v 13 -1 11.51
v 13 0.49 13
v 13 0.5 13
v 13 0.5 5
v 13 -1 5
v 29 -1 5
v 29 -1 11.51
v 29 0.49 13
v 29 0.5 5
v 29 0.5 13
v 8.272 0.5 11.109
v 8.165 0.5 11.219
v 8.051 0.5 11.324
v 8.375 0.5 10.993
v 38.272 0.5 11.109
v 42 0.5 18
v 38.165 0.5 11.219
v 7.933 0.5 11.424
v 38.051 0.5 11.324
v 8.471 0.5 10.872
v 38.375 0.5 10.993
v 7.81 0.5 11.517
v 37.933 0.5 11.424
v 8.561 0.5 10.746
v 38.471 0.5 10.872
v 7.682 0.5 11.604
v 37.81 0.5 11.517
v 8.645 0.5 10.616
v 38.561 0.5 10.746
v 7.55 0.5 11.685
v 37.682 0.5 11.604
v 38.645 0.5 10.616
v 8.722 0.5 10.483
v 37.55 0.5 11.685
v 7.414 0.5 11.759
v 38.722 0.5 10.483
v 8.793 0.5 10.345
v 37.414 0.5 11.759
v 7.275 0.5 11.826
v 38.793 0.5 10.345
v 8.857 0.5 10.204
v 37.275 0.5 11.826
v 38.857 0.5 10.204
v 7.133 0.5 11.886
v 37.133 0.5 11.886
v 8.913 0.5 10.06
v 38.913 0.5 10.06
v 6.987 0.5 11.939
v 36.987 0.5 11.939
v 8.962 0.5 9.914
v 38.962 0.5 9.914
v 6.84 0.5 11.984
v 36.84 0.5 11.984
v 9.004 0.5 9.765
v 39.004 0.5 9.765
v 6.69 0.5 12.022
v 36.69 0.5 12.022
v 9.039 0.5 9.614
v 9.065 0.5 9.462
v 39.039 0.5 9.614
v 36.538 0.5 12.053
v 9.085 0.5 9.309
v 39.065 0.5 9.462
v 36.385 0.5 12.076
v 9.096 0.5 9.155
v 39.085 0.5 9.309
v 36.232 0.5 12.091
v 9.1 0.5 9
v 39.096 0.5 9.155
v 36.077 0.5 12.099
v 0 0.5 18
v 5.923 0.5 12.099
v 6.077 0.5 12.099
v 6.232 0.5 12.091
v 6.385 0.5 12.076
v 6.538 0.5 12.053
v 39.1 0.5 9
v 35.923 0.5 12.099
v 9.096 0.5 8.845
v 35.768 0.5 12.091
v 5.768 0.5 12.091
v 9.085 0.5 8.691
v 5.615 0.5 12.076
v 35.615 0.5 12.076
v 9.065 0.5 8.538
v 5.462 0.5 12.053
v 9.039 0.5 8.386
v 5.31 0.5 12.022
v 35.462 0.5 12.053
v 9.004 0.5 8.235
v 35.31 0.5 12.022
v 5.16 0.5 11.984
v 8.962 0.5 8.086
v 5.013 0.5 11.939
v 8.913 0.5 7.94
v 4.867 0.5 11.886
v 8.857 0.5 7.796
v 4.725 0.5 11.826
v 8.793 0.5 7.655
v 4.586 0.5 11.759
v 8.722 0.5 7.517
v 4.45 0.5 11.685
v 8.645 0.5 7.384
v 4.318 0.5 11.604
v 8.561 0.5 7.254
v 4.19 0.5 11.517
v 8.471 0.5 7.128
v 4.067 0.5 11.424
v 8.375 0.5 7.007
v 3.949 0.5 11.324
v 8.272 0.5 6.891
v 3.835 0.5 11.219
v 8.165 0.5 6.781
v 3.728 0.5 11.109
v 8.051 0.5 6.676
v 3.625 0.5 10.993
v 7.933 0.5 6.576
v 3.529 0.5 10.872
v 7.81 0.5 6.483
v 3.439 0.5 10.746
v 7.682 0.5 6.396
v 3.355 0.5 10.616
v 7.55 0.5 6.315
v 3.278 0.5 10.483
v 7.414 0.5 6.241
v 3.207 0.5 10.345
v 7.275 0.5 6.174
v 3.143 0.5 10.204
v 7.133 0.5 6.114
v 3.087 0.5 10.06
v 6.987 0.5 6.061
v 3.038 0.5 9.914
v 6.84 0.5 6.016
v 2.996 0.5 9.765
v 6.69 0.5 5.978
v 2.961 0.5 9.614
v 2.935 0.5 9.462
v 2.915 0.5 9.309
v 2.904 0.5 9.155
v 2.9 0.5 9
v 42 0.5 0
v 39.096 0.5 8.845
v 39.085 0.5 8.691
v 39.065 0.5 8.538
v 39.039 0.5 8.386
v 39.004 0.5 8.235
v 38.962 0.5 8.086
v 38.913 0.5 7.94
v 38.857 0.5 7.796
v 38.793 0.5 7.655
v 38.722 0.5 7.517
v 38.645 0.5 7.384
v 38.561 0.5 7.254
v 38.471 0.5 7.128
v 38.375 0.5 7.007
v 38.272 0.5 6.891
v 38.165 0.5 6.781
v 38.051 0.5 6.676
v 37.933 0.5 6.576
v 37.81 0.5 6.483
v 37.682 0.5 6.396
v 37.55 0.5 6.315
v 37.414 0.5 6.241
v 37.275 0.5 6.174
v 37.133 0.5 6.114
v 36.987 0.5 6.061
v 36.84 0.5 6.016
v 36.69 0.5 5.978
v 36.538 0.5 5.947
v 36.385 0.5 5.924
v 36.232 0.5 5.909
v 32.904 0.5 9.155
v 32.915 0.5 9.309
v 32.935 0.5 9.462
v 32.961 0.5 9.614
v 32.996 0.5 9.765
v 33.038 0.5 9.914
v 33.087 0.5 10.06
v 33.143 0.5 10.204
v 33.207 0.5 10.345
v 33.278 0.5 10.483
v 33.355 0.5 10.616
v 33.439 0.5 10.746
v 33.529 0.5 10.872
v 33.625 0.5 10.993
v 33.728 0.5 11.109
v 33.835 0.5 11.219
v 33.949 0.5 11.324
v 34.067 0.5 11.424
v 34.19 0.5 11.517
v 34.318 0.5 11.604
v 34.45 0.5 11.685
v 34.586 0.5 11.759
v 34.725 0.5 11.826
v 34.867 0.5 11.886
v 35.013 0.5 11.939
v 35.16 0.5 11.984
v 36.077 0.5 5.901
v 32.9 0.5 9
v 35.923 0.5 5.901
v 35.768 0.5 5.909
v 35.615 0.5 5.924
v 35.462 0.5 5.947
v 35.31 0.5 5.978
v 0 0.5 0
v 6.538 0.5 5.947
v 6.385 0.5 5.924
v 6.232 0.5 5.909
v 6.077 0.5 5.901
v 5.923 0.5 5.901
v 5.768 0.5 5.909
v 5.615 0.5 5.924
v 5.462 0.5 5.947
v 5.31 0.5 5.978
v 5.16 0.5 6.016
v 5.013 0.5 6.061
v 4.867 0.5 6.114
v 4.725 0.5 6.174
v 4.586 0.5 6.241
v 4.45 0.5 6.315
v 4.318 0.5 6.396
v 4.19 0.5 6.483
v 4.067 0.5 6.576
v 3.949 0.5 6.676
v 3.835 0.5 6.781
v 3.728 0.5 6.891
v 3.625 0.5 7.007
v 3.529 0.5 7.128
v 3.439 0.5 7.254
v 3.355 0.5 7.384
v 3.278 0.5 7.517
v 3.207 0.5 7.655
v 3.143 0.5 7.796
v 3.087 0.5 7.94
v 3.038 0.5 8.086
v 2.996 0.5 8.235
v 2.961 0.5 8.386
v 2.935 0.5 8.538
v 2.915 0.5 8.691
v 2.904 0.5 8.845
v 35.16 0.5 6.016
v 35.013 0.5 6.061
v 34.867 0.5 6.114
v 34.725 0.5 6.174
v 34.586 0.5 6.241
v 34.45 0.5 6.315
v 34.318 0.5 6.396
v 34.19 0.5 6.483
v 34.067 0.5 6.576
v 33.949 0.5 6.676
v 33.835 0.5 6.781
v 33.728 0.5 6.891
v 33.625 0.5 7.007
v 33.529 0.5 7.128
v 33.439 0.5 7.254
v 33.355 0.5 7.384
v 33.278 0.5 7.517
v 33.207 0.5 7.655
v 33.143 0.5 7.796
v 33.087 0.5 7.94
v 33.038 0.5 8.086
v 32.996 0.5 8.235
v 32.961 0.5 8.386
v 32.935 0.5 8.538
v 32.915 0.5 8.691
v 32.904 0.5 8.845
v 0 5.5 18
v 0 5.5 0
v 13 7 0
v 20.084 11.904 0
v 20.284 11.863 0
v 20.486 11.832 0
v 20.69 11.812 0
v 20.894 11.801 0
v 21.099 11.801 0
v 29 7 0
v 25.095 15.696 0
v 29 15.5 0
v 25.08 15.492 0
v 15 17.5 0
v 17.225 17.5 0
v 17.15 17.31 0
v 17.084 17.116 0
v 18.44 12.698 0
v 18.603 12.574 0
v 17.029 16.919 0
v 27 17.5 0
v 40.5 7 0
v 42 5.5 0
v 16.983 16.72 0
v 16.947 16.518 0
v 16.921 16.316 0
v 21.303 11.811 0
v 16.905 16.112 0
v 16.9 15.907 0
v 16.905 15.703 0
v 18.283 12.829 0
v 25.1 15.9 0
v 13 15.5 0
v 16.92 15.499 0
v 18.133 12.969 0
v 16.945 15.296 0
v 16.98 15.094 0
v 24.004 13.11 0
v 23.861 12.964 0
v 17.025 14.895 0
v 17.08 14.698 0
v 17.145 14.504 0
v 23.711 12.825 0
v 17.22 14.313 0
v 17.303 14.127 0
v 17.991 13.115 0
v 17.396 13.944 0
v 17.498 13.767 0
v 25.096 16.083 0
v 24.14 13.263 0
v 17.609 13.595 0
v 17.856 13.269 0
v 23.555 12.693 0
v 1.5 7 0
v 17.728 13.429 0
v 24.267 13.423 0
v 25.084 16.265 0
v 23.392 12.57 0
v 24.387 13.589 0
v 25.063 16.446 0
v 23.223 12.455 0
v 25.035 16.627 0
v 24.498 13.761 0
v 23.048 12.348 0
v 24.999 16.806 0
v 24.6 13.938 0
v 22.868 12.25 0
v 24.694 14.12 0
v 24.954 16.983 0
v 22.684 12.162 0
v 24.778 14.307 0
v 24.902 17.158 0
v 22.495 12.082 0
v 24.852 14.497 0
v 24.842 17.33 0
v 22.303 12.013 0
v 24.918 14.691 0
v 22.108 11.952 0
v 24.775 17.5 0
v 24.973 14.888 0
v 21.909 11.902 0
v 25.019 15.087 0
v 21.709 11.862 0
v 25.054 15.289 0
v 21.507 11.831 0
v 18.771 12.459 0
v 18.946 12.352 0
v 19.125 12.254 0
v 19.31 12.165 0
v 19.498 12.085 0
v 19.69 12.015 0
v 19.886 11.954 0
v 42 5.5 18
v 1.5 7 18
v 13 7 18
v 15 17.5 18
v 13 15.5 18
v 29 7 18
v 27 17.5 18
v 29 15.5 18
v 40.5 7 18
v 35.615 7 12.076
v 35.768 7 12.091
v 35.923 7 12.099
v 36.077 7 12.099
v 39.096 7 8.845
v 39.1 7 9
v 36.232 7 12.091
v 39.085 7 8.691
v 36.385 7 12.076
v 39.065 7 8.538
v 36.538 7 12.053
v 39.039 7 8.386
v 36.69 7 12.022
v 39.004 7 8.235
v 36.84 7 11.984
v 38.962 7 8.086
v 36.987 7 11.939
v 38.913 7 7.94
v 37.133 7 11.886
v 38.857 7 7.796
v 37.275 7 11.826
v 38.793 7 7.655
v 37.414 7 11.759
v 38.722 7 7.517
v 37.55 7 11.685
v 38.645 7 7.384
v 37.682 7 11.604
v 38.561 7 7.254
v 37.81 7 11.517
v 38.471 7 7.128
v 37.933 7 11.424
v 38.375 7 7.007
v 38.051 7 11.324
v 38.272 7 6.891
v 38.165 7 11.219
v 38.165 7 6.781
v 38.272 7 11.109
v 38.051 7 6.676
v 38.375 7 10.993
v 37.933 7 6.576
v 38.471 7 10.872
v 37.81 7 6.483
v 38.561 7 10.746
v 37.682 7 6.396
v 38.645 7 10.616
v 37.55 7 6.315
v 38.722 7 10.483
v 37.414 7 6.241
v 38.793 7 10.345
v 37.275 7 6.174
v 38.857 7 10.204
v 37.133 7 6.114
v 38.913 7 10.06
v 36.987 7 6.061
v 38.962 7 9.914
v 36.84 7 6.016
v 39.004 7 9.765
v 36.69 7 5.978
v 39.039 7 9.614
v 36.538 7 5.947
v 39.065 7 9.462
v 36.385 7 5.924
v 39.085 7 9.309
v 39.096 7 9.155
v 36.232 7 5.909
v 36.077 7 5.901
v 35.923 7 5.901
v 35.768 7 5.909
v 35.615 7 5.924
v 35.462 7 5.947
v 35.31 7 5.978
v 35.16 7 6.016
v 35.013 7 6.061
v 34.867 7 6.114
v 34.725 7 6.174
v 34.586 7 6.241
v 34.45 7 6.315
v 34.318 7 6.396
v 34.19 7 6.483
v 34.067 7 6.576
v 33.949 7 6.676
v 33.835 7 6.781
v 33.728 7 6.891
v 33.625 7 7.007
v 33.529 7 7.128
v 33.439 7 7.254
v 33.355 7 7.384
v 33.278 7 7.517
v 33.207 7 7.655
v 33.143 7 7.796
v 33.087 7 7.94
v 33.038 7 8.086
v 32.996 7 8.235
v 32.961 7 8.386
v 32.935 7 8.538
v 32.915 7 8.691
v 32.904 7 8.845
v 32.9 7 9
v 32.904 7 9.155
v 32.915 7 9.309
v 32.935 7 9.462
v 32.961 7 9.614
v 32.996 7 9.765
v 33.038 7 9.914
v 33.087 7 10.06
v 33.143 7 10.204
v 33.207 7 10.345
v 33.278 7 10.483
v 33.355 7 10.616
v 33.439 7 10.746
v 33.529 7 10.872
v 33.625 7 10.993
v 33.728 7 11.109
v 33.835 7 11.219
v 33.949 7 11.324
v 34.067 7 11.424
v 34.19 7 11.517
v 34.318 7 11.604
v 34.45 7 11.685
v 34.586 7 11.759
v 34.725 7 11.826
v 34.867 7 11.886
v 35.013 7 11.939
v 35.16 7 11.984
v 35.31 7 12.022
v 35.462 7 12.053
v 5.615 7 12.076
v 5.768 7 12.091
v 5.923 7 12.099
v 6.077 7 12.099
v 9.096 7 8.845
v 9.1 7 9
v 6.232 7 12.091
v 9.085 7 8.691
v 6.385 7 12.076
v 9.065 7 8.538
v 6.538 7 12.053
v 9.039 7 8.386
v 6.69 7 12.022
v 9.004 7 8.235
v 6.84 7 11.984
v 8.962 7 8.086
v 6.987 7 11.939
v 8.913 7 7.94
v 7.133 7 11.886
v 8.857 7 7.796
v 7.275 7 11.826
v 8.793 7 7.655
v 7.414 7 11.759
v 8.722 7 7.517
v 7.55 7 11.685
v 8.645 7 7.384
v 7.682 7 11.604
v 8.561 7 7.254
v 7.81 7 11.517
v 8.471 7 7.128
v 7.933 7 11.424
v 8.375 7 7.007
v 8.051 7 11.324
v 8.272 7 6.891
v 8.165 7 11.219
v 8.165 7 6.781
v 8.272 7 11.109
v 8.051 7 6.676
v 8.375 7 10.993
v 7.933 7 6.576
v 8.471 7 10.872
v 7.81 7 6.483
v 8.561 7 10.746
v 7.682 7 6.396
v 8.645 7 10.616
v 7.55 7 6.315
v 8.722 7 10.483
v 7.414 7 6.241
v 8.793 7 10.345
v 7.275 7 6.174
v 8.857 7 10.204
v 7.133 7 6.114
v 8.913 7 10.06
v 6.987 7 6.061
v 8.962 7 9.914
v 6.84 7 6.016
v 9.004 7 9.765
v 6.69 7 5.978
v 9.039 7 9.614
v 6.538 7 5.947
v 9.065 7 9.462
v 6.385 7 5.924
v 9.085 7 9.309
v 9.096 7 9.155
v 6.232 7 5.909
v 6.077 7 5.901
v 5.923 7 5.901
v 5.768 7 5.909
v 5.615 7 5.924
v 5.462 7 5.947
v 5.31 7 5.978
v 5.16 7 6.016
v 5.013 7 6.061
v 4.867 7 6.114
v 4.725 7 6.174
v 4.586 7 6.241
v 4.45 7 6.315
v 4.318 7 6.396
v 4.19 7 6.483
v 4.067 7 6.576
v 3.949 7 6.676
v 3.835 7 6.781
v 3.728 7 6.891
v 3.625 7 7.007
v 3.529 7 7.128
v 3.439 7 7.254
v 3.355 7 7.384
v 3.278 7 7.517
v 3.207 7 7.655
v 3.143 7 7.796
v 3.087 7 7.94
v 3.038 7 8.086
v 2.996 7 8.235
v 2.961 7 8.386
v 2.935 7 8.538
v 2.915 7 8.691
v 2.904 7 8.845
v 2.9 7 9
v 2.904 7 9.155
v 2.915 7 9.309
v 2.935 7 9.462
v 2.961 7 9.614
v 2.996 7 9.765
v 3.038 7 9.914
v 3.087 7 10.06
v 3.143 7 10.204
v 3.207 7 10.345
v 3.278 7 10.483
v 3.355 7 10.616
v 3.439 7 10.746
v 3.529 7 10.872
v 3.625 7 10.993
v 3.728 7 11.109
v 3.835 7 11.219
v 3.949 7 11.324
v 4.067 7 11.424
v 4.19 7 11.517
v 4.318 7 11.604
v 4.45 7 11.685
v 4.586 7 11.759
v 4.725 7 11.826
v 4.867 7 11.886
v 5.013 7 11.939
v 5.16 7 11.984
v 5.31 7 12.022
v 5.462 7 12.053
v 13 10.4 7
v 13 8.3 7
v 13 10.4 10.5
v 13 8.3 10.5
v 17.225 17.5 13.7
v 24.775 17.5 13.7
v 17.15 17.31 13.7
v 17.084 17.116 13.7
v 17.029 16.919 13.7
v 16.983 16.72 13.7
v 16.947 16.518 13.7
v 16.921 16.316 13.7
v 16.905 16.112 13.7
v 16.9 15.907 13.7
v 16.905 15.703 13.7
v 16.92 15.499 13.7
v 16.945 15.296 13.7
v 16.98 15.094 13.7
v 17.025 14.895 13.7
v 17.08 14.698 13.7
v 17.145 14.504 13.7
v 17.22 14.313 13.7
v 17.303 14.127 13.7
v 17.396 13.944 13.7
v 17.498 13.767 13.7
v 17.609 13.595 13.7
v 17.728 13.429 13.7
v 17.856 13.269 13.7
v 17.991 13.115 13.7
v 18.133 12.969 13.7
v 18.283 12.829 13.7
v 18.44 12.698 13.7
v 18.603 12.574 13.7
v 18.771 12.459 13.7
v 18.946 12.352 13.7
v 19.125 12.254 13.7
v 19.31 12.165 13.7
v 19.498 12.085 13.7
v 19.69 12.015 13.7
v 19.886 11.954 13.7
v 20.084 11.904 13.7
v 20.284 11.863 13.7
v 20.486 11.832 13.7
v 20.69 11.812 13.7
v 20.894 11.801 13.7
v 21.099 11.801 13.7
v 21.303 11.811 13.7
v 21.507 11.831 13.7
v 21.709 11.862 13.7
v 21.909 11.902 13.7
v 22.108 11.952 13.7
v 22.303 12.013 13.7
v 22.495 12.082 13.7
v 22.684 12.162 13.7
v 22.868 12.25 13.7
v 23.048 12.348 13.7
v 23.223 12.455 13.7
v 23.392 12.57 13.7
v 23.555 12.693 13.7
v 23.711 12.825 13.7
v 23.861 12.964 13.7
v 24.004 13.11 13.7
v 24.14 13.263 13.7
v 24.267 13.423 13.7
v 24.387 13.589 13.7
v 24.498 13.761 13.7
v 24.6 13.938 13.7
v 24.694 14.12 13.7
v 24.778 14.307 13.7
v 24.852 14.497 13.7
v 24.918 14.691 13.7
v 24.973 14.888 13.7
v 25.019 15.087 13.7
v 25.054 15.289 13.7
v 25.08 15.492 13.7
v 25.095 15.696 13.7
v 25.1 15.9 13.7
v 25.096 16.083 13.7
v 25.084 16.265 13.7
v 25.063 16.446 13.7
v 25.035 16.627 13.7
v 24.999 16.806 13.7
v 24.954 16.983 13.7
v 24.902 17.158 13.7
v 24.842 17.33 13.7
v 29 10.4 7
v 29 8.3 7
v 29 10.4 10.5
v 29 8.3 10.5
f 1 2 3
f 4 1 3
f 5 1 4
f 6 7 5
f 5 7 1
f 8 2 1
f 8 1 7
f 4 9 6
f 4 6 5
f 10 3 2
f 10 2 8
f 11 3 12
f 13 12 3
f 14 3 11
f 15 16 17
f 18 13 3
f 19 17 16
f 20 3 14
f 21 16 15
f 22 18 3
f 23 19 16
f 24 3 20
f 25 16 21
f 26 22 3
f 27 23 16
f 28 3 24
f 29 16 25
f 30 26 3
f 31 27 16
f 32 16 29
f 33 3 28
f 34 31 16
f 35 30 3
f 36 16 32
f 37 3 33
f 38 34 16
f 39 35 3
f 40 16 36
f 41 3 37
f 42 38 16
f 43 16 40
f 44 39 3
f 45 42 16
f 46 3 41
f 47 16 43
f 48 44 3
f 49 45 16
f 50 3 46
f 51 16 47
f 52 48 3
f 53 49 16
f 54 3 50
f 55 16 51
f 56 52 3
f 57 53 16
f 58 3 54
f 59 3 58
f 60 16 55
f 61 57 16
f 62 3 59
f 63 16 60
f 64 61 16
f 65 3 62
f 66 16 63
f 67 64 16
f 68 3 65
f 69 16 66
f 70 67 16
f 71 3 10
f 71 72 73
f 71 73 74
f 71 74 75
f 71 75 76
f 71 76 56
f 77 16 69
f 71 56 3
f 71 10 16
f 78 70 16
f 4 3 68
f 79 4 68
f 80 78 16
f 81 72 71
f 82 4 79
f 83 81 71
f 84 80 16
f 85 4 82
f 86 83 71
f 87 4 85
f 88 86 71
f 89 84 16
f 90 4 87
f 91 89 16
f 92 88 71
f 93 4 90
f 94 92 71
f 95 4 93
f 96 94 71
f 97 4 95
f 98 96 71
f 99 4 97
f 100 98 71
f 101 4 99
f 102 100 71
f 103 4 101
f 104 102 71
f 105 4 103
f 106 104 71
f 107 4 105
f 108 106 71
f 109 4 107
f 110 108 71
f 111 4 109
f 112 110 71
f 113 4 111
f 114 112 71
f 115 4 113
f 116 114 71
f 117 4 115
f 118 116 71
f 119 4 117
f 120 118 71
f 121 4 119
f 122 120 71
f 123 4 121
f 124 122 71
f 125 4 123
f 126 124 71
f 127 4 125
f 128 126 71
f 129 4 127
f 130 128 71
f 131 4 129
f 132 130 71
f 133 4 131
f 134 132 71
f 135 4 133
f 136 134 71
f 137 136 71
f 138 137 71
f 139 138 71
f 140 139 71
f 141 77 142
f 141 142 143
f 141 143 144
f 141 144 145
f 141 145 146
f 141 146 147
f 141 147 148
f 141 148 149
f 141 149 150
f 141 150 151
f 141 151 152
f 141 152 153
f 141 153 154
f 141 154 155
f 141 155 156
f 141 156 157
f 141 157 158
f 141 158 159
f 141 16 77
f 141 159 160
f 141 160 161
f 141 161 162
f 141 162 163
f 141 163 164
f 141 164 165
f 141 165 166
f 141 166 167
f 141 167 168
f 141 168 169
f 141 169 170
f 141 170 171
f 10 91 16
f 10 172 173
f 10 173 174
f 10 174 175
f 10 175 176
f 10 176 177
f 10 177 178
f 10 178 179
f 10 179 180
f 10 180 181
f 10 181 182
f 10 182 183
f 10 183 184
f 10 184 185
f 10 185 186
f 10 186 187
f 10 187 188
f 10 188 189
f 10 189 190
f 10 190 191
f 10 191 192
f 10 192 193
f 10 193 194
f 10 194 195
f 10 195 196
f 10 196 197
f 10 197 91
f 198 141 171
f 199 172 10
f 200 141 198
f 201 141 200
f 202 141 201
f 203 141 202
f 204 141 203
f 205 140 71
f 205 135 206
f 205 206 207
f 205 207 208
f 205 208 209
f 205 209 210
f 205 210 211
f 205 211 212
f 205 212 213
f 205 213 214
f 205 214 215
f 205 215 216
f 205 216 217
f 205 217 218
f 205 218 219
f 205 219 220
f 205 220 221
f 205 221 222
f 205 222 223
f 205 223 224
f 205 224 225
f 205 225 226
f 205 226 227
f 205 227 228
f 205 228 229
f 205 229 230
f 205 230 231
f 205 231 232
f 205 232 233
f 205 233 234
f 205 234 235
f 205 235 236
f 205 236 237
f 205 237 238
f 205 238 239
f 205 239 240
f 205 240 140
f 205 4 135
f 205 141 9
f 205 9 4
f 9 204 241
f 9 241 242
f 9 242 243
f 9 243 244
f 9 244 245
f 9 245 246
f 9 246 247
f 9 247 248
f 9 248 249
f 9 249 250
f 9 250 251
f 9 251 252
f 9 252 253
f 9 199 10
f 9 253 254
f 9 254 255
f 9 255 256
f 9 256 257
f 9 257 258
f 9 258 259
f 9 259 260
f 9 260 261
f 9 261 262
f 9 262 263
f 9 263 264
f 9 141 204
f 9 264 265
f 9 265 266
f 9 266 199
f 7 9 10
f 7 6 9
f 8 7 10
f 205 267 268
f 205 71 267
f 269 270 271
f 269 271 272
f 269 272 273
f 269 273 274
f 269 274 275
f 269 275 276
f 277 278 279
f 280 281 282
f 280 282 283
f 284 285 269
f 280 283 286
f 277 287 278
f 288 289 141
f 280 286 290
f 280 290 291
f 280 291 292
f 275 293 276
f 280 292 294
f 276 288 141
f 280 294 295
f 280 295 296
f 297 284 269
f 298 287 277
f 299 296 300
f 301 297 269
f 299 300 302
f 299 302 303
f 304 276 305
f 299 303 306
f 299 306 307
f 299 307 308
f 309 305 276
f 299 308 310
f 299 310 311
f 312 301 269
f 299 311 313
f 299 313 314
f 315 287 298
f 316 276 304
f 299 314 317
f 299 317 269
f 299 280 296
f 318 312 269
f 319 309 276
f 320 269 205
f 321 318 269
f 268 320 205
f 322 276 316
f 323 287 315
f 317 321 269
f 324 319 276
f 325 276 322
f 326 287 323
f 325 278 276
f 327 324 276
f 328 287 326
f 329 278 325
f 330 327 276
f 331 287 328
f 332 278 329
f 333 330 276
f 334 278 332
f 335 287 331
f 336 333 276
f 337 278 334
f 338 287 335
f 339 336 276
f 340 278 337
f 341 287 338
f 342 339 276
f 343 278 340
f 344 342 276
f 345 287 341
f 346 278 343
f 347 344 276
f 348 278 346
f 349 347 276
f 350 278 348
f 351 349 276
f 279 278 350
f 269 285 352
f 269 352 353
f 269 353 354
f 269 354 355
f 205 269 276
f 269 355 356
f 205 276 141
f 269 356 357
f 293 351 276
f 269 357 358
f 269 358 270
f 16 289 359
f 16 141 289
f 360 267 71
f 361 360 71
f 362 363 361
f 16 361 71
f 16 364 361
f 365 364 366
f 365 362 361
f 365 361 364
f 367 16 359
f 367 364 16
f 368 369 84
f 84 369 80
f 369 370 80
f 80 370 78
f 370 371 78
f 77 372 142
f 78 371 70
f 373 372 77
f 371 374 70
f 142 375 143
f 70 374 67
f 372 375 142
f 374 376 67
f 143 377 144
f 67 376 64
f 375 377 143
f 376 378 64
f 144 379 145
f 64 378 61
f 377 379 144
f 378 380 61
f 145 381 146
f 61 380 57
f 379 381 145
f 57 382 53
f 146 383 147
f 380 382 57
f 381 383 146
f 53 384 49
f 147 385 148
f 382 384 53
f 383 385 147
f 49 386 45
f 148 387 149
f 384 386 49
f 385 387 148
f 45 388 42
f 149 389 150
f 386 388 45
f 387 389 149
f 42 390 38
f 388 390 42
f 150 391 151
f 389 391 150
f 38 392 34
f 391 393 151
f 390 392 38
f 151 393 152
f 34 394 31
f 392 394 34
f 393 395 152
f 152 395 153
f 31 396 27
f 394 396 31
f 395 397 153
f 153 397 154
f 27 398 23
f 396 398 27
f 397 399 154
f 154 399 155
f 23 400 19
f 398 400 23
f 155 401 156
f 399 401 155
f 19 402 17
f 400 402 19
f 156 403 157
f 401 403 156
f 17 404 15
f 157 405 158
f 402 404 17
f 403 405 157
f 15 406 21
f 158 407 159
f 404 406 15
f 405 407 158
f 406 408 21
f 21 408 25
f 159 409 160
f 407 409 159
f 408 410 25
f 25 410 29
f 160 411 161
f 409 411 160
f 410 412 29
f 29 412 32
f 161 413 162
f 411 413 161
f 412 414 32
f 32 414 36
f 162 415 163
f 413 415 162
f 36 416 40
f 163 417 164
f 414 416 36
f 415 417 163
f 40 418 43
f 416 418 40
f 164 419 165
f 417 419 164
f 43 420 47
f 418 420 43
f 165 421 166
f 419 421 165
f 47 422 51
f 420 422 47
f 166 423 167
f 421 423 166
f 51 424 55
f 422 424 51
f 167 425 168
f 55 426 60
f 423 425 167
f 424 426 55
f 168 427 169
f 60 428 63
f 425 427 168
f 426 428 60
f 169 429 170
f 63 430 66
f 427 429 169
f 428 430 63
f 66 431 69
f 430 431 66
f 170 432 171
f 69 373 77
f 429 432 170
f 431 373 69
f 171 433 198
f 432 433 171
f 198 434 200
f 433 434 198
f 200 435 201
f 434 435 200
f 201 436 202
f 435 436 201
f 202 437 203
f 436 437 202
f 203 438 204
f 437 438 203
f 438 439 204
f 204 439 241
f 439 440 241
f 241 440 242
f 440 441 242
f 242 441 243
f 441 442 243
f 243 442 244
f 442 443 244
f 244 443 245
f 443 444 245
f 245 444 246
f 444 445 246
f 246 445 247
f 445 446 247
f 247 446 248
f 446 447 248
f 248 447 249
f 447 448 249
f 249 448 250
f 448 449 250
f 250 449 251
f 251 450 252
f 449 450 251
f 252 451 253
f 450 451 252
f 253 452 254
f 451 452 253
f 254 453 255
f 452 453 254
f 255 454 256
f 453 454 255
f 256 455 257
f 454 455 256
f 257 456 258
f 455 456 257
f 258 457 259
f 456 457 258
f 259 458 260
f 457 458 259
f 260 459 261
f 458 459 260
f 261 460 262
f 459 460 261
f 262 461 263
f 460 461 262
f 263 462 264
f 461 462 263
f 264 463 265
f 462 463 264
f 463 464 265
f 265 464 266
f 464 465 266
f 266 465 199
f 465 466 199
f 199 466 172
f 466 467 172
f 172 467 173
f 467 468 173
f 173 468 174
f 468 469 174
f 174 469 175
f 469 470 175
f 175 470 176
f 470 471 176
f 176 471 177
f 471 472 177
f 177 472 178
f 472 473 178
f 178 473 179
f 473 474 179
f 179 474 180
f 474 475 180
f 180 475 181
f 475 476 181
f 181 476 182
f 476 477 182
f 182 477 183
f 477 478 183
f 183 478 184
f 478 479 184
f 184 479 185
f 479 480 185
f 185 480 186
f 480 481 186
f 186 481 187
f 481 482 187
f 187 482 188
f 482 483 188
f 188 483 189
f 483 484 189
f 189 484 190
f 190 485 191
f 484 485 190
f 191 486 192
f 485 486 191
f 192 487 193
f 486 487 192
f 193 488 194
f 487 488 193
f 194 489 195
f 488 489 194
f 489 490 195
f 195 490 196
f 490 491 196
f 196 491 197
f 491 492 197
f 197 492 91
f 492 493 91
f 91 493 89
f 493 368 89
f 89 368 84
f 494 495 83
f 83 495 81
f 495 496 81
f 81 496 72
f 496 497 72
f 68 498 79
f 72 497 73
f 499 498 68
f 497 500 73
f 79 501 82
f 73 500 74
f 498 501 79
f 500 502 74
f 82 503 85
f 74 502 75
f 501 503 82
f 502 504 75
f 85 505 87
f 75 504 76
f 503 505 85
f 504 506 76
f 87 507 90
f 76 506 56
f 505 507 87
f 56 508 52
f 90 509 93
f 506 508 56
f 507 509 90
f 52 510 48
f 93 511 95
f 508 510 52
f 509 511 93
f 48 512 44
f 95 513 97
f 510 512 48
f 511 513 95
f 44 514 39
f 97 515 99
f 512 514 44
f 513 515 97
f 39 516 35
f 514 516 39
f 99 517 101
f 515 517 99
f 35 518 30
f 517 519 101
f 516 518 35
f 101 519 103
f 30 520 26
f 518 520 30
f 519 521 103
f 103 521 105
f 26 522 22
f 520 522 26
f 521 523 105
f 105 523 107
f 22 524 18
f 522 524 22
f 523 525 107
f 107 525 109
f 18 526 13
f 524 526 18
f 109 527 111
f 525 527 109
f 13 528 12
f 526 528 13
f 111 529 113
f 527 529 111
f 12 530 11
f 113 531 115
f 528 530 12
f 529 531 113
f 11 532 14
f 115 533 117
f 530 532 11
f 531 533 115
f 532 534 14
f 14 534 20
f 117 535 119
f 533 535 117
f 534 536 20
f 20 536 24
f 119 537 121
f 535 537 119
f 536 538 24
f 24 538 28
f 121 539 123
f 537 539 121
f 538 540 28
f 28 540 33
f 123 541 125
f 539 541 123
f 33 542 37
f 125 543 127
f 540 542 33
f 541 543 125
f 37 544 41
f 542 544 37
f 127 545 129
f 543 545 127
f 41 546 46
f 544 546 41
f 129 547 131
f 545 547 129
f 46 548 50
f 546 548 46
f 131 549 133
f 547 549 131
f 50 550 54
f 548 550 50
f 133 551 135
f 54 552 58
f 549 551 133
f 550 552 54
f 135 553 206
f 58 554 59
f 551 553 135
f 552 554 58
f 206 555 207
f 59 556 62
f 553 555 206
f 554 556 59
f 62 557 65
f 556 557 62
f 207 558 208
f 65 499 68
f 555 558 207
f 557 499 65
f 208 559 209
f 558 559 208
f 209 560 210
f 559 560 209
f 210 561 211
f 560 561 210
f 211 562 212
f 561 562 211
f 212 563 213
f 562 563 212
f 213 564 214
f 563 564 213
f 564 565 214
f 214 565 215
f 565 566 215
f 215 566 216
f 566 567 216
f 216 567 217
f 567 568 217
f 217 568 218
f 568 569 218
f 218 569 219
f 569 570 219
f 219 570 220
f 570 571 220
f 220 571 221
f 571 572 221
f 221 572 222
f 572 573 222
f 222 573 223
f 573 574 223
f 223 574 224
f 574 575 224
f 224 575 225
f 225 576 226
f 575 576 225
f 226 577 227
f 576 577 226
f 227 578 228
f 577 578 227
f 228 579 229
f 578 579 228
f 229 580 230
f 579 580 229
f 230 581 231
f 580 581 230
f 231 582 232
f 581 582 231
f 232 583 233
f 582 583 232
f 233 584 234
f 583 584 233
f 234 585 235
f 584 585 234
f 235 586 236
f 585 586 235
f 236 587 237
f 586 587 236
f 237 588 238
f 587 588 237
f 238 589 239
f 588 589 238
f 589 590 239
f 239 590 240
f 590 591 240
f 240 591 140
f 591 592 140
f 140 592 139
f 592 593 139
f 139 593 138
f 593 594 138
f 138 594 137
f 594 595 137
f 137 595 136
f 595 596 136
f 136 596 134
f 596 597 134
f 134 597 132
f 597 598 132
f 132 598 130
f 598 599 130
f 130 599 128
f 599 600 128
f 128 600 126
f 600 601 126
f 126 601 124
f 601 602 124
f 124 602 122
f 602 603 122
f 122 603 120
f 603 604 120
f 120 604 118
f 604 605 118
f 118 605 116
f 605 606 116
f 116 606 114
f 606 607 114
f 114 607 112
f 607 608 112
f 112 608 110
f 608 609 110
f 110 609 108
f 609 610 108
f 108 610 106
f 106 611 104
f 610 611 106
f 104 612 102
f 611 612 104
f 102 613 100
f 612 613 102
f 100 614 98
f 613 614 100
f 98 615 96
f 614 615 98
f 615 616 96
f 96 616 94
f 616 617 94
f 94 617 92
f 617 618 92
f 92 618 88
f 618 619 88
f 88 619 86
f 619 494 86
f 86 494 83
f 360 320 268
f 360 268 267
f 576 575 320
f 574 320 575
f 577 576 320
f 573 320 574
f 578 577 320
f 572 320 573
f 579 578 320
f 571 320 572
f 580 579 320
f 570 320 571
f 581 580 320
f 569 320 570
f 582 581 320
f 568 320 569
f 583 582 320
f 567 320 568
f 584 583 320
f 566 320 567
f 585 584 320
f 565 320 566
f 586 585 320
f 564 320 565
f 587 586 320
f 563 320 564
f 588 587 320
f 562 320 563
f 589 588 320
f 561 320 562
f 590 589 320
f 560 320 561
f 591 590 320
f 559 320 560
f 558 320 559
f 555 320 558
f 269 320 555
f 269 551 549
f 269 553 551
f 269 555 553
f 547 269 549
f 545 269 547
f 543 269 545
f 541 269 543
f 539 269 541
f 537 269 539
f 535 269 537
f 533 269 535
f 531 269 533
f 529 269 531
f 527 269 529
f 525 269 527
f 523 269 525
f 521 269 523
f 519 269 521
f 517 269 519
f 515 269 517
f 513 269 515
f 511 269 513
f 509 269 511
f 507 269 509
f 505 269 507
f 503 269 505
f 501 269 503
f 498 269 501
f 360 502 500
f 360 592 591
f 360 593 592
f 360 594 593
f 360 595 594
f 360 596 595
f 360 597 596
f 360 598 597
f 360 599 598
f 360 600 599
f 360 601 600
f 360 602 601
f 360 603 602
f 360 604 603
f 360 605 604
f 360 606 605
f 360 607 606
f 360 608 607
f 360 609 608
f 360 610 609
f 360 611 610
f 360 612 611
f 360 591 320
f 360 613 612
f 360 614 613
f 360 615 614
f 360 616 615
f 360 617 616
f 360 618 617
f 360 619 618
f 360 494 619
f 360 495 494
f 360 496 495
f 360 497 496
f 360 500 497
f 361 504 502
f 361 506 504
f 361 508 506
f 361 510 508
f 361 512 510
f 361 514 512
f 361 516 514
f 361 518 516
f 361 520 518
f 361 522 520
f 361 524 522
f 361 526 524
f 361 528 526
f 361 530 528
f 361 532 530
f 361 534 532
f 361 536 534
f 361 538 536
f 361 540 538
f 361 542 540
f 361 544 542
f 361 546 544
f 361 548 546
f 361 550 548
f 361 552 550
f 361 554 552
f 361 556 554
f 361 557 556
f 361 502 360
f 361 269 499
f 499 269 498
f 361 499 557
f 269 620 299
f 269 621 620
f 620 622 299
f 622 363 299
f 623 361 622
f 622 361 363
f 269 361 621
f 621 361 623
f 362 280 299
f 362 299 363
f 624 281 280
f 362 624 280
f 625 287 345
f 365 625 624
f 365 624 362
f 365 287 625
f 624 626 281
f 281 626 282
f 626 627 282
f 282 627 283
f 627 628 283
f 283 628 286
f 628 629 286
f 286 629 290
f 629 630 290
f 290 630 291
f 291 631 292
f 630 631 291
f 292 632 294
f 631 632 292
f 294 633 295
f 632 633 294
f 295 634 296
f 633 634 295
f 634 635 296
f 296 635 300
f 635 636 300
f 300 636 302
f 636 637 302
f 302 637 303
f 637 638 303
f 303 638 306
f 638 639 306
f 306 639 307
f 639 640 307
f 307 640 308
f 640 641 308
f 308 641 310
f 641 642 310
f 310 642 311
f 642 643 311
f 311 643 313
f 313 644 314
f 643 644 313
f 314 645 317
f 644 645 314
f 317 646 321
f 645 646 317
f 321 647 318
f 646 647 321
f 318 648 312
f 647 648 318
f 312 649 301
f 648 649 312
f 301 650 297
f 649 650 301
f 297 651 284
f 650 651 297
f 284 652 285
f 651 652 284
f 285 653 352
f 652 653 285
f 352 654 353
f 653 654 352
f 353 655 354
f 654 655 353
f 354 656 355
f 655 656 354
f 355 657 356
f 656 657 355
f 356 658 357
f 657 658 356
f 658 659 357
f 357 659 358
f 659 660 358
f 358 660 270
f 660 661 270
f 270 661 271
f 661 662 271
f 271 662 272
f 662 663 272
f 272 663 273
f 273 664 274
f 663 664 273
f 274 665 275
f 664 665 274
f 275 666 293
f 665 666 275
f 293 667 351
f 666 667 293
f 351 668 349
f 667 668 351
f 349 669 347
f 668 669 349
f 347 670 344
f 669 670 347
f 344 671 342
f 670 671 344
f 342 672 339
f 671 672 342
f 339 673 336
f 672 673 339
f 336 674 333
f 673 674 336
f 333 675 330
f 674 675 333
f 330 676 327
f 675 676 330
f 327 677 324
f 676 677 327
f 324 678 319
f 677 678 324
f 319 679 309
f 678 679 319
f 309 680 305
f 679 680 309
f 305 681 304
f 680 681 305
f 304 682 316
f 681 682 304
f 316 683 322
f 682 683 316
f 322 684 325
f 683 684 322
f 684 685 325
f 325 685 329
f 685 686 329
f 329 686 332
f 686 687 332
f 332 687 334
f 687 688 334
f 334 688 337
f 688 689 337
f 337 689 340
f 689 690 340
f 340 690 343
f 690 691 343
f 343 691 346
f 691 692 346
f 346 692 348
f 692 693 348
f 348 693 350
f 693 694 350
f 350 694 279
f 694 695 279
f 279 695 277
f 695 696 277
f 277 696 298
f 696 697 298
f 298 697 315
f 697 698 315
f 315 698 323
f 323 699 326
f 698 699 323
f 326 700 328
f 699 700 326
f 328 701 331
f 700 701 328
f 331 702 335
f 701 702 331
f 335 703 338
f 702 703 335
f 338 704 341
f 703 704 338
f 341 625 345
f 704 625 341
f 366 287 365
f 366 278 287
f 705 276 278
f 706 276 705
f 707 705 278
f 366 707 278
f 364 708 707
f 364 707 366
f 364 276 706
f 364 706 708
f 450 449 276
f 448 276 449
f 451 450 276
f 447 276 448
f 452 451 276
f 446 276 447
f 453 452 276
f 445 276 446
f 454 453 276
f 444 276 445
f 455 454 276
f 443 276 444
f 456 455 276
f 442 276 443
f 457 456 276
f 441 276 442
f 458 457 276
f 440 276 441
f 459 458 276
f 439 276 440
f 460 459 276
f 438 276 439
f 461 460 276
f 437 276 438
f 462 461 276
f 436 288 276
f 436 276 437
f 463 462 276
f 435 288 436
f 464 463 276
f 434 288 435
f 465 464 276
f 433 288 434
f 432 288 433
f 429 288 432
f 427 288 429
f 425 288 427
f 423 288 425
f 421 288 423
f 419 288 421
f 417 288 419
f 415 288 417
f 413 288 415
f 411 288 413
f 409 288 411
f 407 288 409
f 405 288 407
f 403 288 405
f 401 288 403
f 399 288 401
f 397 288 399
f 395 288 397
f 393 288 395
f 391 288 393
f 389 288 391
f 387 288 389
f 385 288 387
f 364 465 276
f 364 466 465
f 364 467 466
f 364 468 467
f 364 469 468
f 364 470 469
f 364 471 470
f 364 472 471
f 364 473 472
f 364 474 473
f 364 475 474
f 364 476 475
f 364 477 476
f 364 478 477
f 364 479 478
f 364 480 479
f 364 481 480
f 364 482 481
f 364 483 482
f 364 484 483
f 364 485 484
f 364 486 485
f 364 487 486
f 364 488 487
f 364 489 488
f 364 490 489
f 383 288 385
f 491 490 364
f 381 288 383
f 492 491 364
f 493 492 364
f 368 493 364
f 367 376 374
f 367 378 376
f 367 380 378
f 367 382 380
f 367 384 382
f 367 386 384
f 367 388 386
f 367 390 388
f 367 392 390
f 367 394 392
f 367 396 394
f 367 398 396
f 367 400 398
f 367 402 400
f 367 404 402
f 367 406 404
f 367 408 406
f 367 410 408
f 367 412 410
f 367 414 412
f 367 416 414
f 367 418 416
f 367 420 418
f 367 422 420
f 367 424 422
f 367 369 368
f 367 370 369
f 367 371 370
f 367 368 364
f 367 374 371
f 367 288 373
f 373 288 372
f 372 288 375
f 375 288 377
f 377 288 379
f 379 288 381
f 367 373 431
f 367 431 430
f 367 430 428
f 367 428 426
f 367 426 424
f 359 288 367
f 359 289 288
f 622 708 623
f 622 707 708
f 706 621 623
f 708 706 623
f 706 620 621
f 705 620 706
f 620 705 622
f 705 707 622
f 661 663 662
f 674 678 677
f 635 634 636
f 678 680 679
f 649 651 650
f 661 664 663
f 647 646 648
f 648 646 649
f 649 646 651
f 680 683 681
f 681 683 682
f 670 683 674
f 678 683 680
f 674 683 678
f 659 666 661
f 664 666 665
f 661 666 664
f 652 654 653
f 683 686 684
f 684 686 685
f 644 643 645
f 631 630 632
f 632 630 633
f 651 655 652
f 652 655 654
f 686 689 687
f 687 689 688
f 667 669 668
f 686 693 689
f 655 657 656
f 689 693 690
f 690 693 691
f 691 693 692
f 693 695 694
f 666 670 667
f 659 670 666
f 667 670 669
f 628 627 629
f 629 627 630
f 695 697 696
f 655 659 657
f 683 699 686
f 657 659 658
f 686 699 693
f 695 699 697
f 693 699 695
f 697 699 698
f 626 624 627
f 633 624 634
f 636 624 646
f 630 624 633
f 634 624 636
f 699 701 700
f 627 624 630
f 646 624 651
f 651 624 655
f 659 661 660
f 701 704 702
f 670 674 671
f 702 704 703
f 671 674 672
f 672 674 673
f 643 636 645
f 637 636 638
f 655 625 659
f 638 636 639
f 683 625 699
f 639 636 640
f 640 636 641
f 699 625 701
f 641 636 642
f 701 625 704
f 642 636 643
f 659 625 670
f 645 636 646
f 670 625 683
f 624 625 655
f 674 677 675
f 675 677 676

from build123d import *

# Parameters (mm, degrees)
CUBE003_W                   = 50
CUBE003_H                   = 2
CUBE003_DEPTH               = 5
CYLINDER_R                  = 4.1
CYLINDER_DEPTH              = 13.8
CUBE004_W                   = 10
CUBE004_H                   = 10
CUBE004_DEPTH               = 20
CUBE004_PLACEMENT_ANGLE     = 45
CUBE005_W                   = 10
CUBE005_H                   = 10
CUBE005_DEPTH               = 20
CUBE005_PLACEMENT_ANGLE     = 45
CUBE006_W                   = 10
CUBE006_H                   = 10
CUBE006_DEPTH               = 20
CUBE006_PLACEMENT_ANGLE     = 45
CUBE007_W                   = 10
CUBE007_H                   = 10
CUBE007_DEPTH               = 20
CUBE007_PLACEMENT_ANGLE     = 45
CYLINDER001_R               = 3.1
CYLINDER001_DEPTH           = 10
CYLINDER002_R               = 3.1
CYLINDER002_DEPTH           = 10
CUBE008_W                   = 30
CUBE008_H                   = 2.1
CUBE008_DEPTH               = 3.5
CUBE002_W                   = 50
CUBE002_H                   = 2
CUBE002_DEPTH               = 10
CUBE001_W                   = 16
CUBE001_H                   = 17.5
CUBE001_DEPTH               = 18
CUBE_W                      = 42
CUBE_H                      = 7
CUBE_DEPTH                  = 18
DIFFERENCE_PLACEMENT_ANGLE  = 180
BASEFEATURE_PLACEMENT_ANGLE = 180
SKETCH_W                    = 13
SKETCH_H                    = 8
POCKET_DEPTH                = 0.5
SKETCH001_W                 = 16
SKETCH001_H                 = 8
PAD_DEPTH                   = 1
CHAMFER_SIZE                = 1.49


with BuildPart() as cube003:
    # cube003 → cube003 (new body)
    with BuildSketch(Plane(origin=(42.1, 0.5, 0), x_dir=(-1, 0, 0), z_dir=(0, 0, 1))):
        with Locations((25, 1)):
            Rectangle(CUBE003_W, CUBE003_H)
    extrude(amount=CUBE003_DEPTH)


with BuildPart() as cylinder:
    # cylinder → cylinder (new body)
    with BuildSketch(Plane(origin=(21, 15.9, -0.1), x_dir=(1, 0, 0), z_dir=(0, 0, 1))):
        Circle(CYLINDER_R)
    extrude(amount=CYLINDER_DEPTH)


with BuildPart() as cube004:
    # cube004 → cube004 (new body)
    with BuildSketch(Plane.XY):
        with Locations((5, 5)):
            Rectangle(CUBE004_W, CUBE004_H)
    extrude(amount=CUBE004_DEPTH)


with BuildPart() as cube004_1:
    # cube004 placement: moved
    add(cube004.part.moved(Location((13, 15.5, -0.1))).rotate(Axis((13, 15.5, -0.1), (0, 0, 1)), CUBE004_PLACEMENT_ANGLE))


with BuildPart() as cube005:
    # cube005 → cube005 (new body)
    with BuildSketch(Plane.XY):
        with Locations((5, 5)):
            Rectangle(CUBE005_W, CUBE005_H)
    extrude(amount=CUBE005_DEPTH)


with BuildPart() as cube005_1:
    # cube005 placement: moved
    add(cube005.part.moved(Location((29, 15.5, -0.1))).rotate(Axis((29, 15.5, -0.1), (0, 0, 1)), CUBE005_PLACEMENT_ANGLE))


with BuildPart() as cube006:
    # cube006 → cube006 (new body)
    with BuildSketch(Plane.XY):
        with Locations((5, 5)):
            Rectangle(CUBE006_W, CUBE006_H)
    extrude(amount=CUBE006_DEPTH)


with BuildPart() as cube006_1:
    # cube006 placement: moved
    add(cube006.part.moved(Location((0, 5.5, -0.1))).rotate(Axis((0, 5.5, -0.1), (0, 0, 1)), CUBE006_PLACEMENT_ANGLE))


with BuildPart() as cube007:
    # cube007 → cube007 (new body)
    with BuildSketch(Plane.XY):
        with Locations((5, 5)):
            Rectangle(CUBE007_W, CUBE007_H)
    extrude(amount=CUBE007_DEPTH)


with BuildPart() as cube007_1:
    # cube007 placement: moved
    add(cube007.part.moved(Location((42, 5.5, -0.1))).rotate(Axis((42, 5.5, -0.1), (0, 0, 1)), CUBE007_PLACEMENT_ANGLE))


with BuildPart() as cylinder001:
    # cylinder001 → cylinder001 (new body)
    with BuildSketch(Plane(origin=(6, -0.1, 9), x_dir=(1, 0, 0), z_dir=(0, 1, 0))):
        Circle(CYLINDER001_R)
    extrude(amount=CYLINDER001_DEPTH)


with BuildPart() as cylinder002:
    # cylinder002 → cylinder002 (new body)
    with BuildSketch(Plane(origin=(36, -0.1, 9), x_dir=(1, 0, 0), z_dir=(0, 1, 0))):
        Circle(CYLINDER002_R)
    extrude(amount=CYLINDER002_DEPTH)


with BuildPart() as cube008:
    # cube008 → cube008 (new body)
    with BuildSketch(Plane(origin=(5, 8.3, 7), x_dir=(1, 0, 0), z_dir=(0, 0, 1))):
        with Locations((15, 1.05)):
            Rectangle(CUBE008_W, CUBE008_H)
    extrude(amount=CUBE008_DEPTH)


with BuildPart() as group001:
    # cube002 → cube002 (new body)
    with BuildSketch(Plane(origin=(42.1, 0.5, 13), x_dir=(-1, 0, 0), z_dir=(0, 0, 1))):
        with Locations((25, 1)):
            Rectangle(CUBE002_W, CUBE002_H)
    extrude(amount=CUBE002_DEPTH)

    # Group001: union cube003, cylinder, cube004, cube005, cube006, cube007, cylinder001, cylinder002, cube008
    add(cube003.part)
    add(cylinder.part)
    add(cube004_1.part)
    add(cube005_1.part)
    add(cube006_1.part)
    add(cube007_1.part)
    add(cylinder001.part)
    add(cylinder002.part)
    add(cube008.part)


with BuildPart() as cube001:
    # cube001 → cube001 (new body)
    with BuildSketch(Plane(origin=(13, 0, 0), x_dir=(1, 0, 0), z_dir=(0, 0, 1))):
        with Locations((8, 8.75)):
            Rectangle(CUBE001_W, CUBE001_H)
    extrude(amount=CUBE001_DEPTH)


with BuildPart() as body:
    # cube → cube (new body)
    with BuildSketch(Plane.XY):
        with Locations((21, 3.5)):
            Rectangle(CUBE_W, CUBE_H)
    extrude(amount=CUBE_DEPTH)

    # Group: union cube001
    add(cube001.part)

    # difference: cut Group001
    add(group001.part, mode=Mode.SUBTRACT)


with BuildPart() as body_1:
    # difference placement: moved
    add(body.part.moved(Location((0, 0, 18))).rotate(Axis((0, 0, 18), (0, 1, 0)), DIFFERENCE_PLACEMENT_ANGLE))


with BuildPart() as body_2:
    # BaseFeature placement: moved
    add(body_1.part.moved(Location((0, 0, 18))).rotate(Axis((0, 0, 18), (0, -1, 0)), BASEFEATURE_PLACEMENT_ANGLE))

    # Sketch (on Face13 of BaseFeature) → Pocket (cut)
    with BuildSketch(Plane.XZ):
        with Locations((6.5, 9)):
            Rectangle(SKETCH_W, SKETCH_H)
        with Locations((35.5, 9)):
            Rectangle(SKETCH_W, SKETCH_H)
    extrude(amount=-POCKET_DEPTH, mode=Mode.SUBTRACT)

    # Sketch001 (on Face19 of Pocket) → Pad (join)
    with BuildSketch(Plane.XZ):
        with Locations((21, 9)):
            Rectangle(SKETCH001_W, SKETCH001_H)
    extrude(amount=PAD_DEPTH)

    # Chamfer
    chamfer_edges = [body_2.edges().sort_by_distance(p)[0] for p in [
        (21, -1, 13),
    ]]
    chamfer(chamfer_edges, length=CHAMFER_SIZE)


solid = body_2.part
